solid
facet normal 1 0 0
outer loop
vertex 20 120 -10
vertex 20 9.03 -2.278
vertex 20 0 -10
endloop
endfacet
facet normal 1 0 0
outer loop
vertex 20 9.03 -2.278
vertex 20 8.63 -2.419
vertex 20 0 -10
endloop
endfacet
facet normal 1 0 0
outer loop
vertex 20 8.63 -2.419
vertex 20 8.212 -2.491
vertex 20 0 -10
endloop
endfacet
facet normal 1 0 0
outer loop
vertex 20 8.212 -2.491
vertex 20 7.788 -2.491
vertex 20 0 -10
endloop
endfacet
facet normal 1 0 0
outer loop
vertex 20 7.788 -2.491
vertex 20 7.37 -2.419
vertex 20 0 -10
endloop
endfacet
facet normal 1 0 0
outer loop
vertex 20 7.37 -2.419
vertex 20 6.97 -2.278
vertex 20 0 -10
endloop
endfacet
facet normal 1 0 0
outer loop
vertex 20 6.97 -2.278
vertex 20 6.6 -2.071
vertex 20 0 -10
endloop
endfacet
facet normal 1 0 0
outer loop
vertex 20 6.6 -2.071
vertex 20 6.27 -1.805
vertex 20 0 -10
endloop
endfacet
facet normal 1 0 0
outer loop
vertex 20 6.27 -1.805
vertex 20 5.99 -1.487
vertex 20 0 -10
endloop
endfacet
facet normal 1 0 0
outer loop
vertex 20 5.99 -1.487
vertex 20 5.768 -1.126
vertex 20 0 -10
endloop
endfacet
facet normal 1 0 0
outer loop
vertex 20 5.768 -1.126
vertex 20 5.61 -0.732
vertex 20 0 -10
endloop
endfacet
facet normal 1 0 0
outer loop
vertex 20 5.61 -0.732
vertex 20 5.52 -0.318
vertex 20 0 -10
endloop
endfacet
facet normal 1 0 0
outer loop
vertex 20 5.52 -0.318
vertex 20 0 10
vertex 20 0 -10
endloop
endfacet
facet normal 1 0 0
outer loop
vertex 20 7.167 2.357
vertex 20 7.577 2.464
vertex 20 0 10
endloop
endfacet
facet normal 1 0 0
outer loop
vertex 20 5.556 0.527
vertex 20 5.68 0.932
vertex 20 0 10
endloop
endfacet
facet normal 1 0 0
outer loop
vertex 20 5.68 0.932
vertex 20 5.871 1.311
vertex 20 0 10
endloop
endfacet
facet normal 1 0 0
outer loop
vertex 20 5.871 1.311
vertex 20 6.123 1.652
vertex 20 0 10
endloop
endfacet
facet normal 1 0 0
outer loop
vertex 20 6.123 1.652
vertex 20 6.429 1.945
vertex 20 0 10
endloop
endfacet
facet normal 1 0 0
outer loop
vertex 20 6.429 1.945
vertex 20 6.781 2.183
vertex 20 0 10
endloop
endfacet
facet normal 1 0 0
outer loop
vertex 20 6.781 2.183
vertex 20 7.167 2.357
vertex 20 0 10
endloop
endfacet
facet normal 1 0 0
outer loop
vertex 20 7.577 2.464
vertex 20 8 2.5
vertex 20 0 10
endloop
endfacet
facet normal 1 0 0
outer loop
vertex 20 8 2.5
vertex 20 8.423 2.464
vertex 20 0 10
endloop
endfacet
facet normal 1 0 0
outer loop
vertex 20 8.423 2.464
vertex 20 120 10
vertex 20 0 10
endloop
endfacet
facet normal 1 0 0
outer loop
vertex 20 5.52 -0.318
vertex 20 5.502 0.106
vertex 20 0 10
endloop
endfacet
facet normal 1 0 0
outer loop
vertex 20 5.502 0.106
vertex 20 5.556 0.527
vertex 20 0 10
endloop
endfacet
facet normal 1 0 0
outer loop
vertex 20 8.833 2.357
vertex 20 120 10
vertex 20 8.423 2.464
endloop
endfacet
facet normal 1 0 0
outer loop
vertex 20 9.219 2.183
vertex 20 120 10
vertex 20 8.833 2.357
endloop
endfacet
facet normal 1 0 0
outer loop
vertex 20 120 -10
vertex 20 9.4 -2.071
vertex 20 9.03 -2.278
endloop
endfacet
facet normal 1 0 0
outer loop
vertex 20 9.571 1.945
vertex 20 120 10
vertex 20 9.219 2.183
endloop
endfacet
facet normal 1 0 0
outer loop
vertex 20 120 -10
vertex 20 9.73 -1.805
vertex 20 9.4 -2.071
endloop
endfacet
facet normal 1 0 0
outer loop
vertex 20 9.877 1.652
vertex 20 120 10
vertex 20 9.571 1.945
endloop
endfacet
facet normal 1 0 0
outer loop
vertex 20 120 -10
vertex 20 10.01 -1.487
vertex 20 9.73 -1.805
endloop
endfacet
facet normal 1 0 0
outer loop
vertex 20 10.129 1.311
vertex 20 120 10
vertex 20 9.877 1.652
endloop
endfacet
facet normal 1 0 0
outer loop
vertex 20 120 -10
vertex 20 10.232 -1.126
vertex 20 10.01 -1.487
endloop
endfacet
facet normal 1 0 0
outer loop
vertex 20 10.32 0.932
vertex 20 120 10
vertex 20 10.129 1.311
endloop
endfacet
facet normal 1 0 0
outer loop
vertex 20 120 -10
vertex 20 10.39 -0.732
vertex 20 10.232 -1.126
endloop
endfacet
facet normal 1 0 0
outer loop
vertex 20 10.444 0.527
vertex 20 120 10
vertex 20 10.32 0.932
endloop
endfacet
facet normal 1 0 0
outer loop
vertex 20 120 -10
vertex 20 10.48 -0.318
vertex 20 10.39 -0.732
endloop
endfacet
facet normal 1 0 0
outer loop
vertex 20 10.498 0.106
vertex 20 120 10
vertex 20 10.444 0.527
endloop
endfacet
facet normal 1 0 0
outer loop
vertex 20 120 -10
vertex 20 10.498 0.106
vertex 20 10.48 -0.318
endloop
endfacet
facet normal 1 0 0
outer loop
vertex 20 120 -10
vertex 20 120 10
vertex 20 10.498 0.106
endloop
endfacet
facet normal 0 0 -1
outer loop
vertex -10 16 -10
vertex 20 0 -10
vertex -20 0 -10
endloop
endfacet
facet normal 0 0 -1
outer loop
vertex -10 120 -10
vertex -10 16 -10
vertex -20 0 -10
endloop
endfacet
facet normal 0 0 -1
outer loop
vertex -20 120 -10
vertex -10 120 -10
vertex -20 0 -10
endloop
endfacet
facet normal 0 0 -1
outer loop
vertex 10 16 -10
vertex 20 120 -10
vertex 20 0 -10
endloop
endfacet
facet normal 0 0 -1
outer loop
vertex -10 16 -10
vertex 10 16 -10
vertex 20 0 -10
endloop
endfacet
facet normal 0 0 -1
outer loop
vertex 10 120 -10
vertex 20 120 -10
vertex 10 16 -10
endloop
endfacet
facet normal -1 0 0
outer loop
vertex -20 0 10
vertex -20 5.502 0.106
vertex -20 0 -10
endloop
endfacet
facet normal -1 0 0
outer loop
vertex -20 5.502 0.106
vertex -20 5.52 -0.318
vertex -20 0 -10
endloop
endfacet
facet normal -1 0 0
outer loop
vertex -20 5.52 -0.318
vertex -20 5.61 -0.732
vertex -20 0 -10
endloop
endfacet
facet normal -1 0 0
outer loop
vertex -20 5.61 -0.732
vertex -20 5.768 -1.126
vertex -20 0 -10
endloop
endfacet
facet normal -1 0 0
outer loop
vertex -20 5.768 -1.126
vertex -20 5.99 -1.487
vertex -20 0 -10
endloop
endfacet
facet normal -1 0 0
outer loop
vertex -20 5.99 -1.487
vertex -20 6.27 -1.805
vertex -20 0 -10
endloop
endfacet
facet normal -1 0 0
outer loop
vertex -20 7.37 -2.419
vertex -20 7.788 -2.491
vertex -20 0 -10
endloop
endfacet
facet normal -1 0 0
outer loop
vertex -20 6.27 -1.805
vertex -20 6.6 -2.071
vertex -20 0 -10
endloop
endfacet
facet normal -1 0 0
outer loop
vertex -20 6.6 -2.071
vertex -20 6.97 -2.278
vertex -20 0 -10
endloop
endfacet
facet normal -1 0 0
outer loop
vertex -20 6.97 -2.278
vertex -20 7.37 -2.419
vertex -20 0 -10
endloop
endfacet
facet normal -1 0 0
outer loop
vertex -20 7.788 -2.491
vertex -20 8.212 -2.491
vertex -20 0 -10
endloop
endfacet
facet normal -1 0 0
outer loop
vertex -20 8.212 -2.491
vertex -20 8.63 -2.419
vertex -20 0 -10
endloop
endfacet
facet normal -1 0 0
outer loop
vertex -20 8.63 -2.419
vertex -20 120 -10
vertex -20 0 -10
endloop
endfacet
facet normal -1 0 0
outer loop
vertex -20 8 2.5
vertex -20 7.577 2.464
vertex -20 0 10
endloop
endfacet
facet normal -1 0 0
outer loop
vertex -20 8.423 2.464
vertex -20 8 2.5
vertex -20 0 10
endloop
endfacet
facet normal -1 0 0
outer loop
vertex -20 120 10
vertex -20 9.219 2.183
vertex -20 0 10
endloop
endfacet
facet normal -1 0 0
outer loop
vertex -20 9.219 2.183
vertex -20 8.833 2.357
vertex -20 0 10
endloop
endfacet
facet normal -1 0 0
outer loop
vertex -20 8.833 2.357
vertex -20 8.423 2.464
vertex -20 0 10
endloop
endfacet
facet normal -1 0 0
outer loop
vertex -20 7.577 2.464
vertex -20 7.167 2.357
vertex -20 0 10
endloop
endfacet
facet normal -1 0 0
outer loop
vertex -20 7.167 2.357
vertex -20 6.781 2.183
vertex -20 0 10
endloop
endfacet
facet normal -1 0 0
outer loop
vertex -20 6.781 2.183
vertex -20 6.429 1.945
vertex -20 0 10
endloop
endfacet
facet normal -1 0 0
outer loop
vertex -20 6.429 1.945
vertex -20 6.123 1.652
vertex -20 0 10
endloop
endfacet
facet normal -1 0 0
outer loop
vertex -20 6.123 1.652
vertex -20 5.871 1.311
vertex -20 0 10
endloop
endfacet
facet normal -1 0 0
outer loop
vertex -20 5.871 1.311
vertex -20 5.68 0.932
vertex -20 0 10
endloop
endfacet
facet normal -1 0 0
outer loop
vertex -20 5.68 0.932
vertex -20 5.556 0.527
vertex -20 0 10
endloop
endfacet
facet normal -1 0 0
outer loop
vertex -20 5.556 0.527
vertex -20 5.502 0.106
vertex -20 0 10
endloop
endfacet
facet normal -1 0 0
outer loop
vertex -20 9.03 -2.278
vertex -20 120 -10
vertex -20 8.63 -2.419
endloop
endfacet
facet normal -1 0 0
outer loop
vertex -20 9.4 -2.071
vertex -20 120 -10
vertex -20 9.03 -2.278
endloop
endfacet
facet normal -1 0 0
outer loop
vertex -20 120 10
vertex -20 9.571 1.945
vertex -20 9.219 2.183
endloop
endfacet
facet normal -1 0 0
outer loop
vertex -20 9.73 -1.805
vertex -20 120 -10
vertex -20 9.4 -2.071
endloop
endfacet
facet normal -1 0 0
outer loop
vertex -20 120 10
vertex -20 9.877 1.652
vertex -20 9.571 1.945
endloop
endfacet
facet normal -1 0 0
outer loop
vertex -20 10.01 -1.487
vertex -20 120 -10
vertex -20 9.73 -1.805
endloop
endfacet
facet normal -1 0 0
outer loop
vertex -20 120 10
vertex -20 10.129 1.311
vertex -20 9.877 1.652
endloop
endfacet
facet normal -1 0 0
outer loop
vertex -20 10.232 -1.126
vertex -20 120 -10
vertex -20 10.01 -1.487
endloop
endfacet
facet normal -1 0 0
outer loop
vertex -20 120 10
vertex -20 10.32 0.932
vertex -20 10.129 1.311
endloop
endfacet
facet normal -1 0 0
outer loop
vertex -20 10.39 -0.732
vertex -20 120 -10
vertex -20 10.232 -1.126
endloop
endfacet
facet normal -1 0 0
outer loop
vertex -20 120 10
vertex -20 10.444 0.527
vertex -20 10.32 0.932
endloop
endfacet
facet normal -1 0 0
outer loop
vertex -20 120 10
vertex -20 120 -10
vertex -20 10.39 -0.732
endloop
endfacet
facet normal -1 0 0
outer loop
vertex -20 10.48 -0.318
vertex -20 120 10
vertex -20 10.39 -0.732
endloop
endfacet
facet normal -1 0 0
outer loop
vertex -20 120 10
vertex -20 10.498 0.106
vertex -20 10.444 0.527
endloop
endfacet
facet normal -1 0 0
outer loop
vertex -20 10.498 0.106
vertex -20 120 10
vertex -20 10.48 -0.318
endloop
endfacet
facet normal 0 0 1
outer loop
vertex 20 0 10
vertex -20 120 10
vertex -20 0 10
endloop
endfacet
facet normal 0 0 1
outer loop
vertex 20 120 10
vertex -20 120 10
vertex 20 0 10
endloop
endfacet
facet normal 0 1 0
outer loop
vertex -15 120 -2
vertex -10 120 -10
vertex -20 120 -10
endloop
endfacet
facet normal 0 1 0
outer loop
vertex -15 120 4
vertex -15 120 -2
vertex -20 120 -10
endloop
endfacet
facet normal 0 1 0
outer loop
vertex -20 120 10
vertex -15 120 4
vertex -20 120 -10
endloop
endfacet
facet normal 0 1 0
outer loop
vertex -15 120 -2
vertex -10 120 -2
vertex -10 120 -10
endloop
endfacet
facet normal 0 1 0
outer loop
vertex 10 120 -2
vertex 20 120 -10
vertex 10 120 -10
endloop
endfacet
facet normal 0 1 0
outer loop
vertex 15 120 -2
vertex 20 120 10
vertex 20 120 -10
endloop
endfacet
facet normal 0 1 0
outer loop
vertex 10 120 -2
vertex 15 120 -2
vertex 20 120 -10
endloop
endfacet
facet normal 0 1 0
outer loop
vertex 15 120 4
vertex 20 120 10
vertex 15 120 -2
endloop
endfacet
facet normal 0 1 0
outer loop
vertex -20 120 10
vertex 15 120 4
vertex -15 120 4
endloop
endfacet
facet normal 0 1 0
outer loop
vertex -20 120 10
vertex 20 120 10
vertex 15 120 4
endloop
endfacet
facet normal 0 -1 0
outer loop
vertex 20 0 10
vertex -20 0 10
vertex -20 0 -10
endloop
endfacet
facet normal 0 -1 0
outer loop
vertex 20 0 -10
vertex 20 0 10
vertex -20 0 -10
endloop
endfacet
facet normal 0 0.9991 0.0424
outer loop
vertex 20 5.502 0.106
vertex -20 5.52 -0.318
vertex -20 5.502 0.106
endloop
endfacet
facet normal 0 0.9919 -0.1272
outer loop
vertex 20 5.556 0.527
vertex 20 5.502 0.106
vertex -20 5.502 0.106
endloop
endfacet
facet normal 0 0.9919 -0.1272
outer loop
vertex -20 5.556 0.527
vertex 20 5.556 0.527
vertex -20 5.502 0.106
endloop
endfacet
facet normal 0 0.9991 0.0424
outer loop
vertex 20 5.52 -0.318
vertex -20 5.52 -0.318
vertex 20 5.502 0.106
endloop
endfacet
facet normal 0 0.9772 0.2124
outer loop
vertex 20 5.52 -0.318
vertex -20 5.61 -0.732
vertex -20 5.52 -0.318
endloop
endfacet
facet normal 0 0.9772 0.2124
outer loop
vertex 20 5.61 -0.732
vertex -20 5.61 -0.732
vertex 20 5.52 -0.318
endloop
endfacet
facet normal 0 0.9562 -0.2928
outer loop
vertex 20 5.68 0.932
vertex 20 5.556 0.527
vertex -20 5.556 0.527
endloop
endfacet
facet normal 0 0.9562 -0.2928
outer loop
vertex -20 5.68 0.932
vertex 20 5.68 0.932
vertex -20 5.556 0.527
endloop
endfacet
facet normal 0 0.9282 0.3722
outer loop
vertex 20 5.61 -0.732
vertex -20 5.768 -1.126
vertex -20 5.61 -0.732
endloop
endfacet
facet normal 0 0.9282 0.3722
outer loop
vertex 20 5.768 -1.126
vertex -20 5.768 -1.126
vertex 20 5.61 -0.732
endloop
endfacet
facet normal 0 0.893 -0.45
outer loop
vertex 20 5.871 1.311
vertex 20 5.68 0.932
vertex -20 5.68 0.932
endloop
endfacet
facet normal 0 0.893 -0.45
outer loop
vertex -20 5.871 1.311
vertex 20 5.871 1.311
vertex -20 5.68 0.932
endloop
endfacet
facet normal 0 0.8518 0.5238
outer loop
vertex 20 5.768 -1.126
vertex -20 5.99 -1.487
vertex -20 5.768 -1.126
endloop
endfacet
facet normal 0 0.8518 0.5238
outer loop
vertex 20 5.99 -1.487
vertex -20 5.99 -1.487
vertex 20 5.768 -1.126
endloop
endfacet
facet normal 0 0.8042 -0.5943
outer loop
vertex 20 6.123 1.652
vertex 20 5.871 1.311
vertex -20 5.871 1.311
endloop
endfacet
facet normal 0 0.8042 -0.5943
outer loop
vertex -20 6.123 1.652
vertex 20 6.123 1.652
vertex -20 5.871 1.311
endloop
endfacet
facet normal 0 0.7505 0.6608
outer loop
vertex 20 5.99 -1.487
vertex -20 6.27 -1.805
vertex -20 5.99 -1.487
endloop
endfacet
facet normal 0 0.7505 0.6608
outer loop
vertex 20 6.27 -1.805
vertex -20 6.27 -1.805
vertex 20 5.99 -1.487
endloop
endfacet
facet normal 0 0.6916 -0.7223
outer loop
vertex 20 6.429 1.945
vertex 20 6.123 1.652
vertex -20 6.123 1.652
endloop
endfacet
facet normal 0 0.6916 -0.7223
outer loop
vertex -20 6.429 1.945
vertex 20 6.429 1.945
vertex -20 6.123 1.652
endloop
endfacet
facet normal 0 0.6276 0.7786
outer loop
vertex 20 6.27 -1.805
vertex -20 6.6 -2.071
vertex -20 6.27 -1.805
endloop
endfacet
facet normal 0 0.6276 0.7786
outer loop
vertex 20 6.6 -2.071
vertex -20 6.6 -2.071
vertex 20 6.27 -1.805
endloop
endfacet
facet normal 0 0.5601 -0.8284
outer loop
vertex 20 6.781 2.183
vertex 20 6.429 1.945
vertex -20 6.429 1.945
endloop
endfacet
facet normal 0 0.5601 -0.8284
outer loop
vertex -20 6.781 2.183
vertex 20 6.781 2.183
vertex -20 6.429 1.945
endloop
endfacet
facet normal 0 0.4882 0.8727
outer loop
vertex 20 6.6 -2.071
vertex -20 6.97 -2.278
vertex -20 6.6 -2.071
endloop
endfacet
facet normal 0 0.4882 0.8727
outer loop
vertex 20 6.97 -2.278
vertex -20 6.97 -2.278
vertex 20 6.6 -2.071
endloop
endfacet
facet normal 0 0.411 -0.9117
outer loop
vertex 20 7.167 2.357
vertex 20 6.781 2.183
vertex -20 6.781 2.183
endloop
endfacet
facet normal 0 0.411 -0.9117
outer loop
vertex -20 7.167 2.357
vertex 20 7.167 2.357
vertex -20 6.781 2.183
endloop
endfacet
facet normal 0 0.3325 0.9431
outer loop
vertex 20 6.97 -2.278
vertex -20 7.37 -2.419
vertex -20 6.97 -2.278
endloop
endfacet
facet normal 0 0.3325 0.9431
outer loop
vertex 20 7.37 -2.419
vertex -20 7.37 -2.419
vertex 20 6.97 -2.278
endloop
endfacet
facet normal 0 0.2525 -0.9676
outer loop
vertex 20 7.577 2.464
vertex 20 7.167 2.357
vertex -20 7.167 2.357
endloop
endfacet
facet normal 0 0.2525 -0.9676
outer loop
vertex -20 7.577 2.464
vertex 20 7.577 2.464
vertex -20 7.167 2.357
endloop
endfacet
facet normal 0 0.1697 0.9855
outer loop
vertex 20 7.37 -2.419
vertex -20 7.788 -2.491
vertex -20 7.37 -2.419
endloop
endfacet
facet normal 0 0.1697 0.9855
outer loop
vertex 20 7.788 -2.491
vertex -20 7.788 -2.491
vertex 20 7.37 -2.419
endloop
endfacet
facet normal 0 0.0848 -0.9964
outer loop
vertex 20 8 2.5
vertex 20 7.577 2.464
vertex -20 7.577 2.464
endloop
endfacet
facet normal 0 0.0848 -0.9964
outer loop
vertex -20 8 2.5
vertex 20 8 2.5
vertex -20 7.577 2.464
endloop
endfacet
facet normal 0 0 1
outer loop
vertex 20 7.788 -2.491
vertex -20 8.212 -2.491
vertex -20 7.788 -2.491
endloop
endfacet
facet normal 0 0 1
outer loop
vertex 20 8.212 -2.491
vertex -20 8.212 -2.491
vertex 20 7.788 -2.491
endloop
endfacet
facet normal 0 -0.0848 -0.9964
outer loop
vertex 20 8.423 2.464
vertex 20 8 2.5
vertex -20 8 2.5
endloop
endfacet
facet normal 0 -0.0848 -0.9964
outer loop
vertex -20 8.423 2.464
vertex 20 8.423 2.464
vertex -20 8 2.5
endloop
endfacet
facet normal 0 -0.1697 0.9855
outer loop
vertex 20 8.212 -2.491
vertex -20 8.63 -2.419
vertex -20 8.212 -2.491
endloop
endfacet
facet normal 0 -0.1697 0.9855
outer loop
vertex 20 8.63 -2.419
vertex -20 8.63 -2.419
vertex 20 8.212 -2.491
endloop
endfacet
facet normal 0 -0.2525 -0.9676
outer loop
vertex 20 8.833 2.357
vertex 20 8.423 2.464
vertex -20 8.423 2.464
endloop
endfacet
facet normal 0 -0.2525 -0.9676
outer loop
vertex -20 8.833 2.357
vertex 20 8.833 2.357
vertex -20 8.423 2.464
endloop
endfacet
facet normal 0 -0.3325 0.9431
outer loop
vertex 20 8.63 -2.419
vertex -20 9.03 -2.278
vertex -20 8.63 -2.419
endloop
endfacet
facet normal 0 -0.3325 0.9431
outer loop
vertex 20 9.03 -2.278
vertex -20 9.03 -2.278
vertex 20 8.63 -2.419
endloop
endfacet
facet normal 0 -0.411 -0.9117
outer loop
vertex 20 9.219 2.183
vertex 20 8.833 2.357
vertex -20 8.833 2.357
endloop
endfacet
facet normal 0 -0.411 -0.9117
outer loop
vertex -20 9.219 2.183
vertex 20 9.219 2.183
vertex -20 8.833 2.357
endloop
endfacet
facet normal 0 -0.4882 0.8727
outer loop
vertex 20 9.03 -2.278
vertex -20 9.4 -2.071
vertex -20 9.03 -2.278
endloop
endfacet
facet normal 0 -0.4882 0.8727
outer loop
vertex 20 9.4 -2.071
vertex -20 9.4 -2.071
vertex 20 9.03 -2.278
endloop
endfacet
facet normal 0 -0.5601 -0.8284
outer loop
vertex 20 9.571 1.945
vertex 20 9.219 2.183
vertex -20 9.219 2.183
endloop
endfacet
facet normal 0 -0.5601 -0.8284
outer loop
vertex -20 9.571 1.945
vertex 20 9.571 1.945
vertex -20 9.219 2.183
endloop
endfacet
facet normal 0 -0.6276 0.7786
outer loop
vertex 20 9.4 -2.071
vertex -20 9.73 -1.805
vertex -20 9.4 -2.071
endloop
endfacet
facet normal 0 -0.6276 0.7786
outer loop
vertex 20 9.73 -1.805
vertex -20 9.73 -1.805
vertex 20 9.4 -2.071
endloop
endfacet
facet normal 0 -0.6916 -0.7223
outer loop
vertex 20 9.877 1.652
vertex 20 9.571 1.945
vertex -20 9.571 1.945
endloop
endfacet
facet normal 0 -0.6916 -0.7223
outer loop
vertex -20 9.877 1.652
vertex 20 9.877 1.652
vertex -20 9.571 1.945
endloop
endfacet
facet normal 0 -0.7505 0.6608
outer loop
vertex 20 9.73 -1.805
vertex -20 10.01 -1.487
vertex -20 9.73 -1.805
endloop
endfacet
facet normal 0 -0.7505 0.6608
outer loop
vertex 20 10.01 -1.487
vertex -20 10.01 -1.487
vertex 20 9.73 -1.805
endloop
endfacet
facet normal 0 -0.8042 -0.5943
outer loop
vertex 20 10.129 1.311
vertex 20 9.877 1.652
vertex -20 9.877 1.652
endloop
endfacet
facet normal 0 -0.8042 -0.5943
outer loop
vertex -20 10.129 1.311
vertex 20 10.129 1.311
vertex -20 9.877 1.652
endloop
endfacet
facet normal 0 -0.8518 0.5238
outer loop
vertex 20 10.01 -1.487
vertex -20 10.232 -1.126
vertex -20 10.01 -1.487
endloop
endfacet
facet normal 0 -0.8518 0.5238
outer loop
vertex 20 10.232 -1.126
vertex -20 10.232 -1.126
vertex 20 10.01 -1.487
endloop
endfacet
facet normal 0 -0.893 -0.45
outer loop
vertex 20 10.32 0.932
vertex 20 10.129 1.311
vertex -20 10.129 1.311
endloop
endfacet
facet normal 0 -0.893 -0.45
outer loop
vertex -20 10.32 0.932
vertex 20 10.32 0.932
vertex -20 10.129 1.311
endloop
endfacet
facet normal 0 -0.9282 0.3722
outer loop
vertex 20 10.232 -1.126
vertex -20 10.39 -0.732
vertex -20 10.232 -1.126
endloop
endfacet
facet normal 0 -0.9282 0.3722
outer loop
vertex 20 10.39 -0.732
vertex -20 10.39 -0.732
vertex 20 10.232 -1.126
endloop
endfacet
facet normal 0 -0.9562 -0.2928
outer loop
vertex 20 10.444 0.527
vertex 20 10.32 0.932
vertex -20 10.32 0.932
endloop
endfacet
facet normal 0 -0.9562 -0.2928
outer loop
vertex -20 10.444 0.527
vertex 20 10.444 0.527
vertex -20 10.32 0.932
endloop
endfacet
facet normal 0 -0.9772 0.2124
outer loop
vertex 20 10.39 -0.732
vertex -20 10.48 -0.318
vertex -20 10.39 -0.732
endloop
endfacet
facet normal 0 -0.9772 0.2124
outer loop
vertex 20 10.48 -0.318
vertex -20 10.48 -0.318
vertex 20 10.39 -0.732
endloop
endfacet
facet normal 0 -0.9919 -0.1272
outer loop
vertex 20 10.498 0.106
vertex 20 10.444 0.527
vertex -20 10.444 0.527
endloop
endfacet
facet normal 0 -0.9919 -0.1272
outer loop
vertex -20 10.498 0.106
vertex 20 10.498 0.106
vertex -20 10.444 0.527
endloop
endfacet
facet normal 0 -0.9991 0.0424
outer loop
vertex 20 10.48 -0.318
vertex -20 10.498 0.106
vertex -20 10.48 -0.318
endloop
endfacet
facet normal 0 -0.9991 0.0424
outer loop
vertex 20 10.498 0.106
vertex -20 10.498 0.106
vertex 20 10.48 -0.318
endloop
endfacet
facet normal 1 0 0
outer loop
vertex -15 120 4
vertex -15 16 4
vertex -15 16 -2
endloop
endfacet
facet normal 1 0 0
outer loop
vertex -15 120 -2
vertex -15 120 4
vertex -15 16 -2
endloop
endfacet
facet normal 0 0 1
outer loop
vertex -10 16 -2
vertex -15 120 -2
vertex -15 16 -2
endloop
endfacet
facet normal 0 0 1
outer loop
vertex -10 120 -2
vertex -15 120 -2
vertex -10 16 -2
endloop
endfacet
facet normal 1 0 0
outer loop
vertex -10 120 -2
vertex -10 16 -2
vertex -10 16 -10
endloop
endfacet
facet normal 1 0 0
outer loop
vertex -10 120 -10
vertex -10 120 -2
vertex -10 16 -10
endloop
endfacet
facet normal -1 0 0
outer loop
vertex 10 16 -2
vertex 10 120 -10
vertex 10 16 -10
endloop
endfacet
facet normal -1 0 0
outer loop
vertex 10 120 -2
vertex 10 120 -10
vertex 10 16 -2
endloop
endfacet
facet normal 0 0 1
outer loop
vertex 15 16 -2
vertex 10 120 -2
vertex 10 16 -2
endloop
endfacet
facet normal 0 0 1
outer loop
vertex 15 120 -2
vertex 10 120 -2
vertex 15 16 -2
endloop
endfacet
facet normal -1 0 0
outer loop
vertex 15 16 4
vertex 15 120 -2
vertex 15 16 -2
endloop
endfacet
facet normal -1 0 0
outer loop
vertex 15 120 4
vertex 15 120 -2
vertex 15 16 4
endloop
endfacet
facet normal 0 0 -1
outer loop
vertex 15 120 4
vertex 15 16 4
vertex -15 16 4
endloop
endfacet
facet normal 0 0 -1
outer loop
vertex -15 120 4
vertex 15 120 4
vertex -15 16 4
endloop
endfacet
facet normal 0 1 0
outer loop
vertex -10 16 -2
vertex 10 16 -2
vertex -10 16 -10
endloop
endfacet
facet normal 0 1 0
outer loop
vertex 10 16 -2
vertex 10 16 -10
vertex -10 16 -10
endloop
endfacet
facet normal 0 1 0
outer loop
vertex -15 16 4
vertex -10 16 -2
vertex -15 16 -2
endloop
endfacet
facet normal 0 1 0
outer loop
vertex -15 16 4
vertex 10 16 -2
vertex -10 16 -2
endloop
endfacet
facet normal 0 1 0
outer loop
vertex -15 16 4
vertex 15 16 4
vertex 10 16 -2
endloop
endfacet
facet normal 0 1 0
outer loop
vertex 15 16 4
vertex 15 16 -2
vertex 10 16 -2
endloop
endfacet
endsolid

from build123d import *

# Parameters (mm, degrees)
SZKIC1_W                    = 40
SZKIC1_H                    = 20
DODANIE_WYCI_GNI_CIE1_DEPTH = 120
SZKIC2_R                    = 2.5
WYTNIJ_WYCI_GNI_CIE1_DEPTH  = 127.885775404
WYTNIJ_WYCI_GNI_CIE2_DEPTH  = 104


with BuildPart() as part:
    # Szkic1 → Dodanie-wyciągnięcie1 (new body)
    with BuildSketch(Plane(origin=(0, 0, 0), x_dir=(1, 0, 0), z_dir=(0, 1, 0))):
        Rectangle(SZKIC1_W, SZKIC1_H)
    extrude(amount=DODANIE_WYCI_GNI_CIE1_DEPTH)

    # Szkic2 → Wytnij-wyciągnięcie1 (cut, through all)
    with BuildSketch(Plane.ZY.offset(20)):
        with Locations((0, 8)):
            Circle(SZKIC2_R)
    extrude(amount=-WYTNIJ_WYCI_GNI_CIE1_DEPTH, mode=Mode.SUBTRACT)

    # Szkic4 → Wytnij-wyciągnięcie2 (cut)
    with BuildSketch(Plane(origin=(0, 120, 0), x_dir=(1, 0, 0), z_dir=(0, 1, 0))):
        Polygon((-15, -4), (15, -4), (15, 2), (10, 2), (10, 10), (-10, 10), (-10, 2), (-15, 2), align=None)
    extrude(amount=-WYTNIJ_WYCI_GNI_CIE2_DEPTH, mode=Mode.SUBTRACT)


solid = part.part
